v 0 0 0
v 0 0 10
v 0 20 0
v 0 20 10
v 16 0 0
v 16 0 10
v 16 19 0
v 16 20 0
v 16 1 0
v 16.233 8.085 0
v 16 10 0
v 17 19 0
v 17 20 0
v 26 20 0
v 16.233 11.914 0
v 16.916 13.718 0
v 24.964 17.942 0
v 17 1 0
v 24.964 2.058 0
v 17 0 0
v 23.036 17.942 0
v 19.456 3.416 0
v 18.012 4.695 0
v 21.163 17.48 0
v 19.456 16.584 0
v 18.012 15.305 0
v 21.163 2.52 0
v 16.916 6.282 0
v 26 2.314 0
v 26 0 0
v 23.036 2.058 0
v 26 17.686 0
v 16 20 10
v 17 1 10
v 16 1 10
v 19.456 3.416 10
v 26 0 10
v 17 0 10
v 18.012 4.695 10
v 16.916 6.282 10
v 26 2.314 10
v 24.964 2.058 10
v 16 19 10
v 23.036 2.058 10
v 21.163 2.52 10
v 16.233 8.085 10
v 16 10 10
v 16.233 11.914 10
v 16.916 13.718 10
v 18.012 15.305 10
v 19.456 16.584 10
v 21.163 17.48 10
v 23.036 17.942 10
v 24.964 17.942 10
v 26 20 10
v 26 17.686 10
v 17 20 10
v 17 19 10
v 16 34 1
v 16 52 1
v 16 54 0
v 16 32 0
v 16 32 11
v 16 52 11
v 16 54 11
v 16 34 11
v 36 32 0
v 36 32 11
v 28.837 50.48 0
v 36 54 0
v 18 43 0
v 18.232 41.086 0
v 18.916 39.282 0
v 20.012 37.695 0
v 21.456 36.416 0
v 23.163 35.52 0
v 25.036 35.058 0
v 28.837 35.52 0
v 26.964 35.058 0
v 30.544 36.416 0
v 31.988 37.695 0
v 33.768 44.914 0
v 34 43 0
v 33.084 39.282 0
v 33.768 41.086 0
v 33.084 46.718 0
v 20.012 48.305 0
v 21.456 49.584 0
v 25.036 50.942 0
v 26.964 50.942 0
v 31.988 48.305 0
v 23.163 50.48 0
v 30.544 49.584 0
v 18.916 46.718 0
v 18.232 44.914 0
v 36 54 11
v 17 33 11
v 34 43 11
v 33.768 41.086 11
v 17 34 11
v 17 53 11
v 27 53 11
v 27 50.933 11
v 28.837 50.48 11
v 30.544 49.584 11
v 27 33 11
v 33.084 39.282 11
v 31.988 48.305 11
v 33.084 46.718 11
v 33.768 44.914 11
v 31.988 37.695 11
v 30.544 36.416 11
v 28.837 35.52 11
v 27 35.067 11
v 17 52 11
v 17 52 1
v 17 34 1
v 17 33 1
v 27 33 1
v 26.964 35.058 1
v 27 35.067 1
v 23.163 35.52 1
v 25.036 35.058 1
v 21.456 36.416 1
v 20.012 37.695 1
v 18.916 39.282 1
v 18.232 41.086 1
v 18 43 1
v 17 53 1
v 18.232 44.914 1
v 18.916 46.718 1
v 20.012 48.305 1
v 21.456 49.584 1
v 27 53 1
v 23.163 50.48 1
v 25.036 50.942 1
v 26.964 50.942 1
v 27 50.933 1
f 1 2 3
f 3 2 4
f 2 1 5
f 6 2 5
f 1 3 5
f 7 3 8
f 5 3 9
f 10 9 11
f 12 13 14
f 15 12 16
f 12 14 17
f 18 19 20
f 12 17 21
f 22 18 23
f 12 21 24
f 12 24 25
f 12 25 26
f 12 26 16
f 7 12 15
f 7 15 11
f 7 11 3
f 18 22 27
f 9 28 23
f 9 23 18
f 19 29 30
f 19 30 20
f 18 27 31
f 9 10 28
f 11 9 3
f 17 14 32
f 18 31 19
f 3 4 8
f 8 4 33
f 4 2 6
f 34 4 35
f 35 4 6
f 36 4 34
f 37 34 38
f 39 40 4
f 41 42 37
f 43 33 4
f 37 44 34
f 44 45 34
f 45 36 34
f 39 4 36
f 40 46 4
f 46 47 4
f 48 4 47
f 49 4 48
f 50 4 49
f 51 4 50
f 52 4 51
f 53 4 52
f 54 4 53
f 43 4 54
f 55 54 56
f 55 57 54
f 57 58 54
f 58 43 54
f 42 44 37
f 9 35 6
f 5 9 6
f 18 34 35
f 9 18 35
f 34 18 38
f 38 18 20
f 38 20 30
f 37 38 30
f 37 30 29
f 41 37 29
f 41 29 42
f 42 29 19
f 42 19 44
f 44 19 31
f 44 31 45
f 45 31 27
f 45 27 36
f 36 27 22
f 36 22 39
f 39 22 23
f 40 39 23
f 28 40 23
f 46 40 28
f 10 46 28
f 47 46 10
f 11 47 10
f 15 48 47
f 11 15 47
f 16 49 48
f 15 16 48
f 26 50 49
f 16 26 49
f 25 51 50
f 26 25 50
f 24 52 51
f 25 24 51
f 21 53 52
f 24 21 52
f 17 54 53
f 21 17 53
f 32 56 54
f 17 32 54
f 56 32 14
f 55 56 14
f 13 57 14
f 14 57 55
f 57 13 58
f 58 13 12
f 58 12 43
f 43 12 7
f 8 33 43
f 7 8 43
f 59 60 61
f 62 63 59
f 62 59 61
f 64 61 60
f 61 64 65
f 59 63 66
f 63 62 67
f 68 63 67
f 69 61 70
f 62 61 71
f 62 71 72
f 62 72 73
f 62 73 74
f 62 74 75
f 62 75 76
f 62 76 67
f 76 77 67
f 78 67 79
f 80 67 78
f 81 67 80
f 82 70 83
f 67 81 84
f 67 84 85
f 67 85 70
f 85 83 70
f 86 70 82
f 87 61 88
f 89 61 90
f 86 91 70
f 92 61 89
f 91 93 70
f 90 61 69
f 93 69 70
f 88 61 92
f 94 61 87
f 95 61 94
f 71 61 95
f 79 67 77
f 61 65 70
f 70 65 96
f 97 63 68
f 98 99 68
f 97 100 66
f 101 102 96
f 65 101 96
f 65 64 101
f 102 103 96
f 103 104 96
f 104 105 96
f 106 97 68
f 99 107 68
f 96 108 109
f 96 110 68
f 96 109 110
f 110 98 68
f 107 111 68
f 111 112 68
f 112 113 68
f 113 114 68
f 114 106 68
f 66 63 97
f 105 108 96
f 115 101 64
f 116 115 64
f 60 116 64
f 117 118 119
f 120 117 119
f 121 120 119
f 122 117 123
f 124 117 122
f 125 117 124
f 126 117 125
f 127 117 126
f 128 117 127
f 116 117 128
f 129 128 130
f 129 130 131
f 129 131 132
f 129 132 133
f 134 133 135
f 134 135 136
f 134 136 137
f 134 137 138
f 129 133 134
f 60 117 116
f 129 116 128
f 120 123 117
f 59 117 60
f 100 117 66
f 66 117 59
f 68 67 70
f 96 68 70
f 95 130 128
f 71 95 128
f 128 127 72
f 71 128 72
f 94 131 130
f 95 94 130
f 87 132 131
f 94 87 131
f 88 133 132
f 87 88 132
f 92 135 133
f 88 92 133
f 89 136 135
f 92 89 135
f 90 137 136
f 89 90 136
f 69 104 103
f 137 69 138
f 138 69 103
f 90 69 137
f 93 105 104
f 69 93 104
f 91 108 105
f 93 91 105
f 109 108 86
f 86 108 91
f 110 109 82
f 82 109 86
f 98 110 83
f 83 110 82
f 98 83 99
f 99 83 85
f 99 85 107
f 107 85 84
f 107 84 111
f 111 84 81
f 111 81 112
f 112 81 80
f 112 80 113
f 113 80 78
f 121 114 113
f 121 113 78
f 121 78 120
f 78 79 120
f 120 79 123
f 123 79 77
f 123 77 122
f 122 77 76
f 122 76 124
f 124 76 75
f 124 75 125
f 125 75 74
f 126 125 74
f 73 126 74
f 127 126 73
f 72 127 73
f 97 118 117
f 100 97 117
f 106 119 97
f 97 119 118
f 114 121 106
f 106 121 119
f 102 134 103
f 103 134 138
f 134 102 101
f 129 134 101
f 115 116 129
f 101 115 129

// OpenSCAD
radius=8;
length_overlap=2;
width_overlap=4;
height=10;
top_offset=1;
heel=1;

difference() {
	cube([3 * radius + length_overlap, 2 * radius + width_overlap, height]);
	translate([3 * radius, radius + (width_overlap / 2), 0]) {cylinder(height, r=radius);}
	translate([2 * radius, 0, 0]) { cube([heel, top_offset, height]);}
	translate([2 * radius, 2 * radius + width_overlap - heel, 0]) { cube([heel, top_offset, height]);}
}


translate([2 * radius, 3 * radius + (2 * width_overlap), 0]) {
	difference() {
		cube([2 * radius + length_overlap + 2 * top_offset, 2 * radius + width_overlap + 2 * top_offset, height + top_offset]);
		translate([radius + top_offset + length_overlap/2, radius + top_offset + width_overlap/2, 0]) {cylinder(height + top_offset, r=radius);}
		translate([top_offset, top_offset, top_offset]) {cube([radius + length_overlap, 2 * radius + width_overlap, height]);}


		translate([0, top_offset + heel, top_offset]) {cube([top_offset, 2 * radius + width_overlap - 2 * heel, height]);}
	}
}
